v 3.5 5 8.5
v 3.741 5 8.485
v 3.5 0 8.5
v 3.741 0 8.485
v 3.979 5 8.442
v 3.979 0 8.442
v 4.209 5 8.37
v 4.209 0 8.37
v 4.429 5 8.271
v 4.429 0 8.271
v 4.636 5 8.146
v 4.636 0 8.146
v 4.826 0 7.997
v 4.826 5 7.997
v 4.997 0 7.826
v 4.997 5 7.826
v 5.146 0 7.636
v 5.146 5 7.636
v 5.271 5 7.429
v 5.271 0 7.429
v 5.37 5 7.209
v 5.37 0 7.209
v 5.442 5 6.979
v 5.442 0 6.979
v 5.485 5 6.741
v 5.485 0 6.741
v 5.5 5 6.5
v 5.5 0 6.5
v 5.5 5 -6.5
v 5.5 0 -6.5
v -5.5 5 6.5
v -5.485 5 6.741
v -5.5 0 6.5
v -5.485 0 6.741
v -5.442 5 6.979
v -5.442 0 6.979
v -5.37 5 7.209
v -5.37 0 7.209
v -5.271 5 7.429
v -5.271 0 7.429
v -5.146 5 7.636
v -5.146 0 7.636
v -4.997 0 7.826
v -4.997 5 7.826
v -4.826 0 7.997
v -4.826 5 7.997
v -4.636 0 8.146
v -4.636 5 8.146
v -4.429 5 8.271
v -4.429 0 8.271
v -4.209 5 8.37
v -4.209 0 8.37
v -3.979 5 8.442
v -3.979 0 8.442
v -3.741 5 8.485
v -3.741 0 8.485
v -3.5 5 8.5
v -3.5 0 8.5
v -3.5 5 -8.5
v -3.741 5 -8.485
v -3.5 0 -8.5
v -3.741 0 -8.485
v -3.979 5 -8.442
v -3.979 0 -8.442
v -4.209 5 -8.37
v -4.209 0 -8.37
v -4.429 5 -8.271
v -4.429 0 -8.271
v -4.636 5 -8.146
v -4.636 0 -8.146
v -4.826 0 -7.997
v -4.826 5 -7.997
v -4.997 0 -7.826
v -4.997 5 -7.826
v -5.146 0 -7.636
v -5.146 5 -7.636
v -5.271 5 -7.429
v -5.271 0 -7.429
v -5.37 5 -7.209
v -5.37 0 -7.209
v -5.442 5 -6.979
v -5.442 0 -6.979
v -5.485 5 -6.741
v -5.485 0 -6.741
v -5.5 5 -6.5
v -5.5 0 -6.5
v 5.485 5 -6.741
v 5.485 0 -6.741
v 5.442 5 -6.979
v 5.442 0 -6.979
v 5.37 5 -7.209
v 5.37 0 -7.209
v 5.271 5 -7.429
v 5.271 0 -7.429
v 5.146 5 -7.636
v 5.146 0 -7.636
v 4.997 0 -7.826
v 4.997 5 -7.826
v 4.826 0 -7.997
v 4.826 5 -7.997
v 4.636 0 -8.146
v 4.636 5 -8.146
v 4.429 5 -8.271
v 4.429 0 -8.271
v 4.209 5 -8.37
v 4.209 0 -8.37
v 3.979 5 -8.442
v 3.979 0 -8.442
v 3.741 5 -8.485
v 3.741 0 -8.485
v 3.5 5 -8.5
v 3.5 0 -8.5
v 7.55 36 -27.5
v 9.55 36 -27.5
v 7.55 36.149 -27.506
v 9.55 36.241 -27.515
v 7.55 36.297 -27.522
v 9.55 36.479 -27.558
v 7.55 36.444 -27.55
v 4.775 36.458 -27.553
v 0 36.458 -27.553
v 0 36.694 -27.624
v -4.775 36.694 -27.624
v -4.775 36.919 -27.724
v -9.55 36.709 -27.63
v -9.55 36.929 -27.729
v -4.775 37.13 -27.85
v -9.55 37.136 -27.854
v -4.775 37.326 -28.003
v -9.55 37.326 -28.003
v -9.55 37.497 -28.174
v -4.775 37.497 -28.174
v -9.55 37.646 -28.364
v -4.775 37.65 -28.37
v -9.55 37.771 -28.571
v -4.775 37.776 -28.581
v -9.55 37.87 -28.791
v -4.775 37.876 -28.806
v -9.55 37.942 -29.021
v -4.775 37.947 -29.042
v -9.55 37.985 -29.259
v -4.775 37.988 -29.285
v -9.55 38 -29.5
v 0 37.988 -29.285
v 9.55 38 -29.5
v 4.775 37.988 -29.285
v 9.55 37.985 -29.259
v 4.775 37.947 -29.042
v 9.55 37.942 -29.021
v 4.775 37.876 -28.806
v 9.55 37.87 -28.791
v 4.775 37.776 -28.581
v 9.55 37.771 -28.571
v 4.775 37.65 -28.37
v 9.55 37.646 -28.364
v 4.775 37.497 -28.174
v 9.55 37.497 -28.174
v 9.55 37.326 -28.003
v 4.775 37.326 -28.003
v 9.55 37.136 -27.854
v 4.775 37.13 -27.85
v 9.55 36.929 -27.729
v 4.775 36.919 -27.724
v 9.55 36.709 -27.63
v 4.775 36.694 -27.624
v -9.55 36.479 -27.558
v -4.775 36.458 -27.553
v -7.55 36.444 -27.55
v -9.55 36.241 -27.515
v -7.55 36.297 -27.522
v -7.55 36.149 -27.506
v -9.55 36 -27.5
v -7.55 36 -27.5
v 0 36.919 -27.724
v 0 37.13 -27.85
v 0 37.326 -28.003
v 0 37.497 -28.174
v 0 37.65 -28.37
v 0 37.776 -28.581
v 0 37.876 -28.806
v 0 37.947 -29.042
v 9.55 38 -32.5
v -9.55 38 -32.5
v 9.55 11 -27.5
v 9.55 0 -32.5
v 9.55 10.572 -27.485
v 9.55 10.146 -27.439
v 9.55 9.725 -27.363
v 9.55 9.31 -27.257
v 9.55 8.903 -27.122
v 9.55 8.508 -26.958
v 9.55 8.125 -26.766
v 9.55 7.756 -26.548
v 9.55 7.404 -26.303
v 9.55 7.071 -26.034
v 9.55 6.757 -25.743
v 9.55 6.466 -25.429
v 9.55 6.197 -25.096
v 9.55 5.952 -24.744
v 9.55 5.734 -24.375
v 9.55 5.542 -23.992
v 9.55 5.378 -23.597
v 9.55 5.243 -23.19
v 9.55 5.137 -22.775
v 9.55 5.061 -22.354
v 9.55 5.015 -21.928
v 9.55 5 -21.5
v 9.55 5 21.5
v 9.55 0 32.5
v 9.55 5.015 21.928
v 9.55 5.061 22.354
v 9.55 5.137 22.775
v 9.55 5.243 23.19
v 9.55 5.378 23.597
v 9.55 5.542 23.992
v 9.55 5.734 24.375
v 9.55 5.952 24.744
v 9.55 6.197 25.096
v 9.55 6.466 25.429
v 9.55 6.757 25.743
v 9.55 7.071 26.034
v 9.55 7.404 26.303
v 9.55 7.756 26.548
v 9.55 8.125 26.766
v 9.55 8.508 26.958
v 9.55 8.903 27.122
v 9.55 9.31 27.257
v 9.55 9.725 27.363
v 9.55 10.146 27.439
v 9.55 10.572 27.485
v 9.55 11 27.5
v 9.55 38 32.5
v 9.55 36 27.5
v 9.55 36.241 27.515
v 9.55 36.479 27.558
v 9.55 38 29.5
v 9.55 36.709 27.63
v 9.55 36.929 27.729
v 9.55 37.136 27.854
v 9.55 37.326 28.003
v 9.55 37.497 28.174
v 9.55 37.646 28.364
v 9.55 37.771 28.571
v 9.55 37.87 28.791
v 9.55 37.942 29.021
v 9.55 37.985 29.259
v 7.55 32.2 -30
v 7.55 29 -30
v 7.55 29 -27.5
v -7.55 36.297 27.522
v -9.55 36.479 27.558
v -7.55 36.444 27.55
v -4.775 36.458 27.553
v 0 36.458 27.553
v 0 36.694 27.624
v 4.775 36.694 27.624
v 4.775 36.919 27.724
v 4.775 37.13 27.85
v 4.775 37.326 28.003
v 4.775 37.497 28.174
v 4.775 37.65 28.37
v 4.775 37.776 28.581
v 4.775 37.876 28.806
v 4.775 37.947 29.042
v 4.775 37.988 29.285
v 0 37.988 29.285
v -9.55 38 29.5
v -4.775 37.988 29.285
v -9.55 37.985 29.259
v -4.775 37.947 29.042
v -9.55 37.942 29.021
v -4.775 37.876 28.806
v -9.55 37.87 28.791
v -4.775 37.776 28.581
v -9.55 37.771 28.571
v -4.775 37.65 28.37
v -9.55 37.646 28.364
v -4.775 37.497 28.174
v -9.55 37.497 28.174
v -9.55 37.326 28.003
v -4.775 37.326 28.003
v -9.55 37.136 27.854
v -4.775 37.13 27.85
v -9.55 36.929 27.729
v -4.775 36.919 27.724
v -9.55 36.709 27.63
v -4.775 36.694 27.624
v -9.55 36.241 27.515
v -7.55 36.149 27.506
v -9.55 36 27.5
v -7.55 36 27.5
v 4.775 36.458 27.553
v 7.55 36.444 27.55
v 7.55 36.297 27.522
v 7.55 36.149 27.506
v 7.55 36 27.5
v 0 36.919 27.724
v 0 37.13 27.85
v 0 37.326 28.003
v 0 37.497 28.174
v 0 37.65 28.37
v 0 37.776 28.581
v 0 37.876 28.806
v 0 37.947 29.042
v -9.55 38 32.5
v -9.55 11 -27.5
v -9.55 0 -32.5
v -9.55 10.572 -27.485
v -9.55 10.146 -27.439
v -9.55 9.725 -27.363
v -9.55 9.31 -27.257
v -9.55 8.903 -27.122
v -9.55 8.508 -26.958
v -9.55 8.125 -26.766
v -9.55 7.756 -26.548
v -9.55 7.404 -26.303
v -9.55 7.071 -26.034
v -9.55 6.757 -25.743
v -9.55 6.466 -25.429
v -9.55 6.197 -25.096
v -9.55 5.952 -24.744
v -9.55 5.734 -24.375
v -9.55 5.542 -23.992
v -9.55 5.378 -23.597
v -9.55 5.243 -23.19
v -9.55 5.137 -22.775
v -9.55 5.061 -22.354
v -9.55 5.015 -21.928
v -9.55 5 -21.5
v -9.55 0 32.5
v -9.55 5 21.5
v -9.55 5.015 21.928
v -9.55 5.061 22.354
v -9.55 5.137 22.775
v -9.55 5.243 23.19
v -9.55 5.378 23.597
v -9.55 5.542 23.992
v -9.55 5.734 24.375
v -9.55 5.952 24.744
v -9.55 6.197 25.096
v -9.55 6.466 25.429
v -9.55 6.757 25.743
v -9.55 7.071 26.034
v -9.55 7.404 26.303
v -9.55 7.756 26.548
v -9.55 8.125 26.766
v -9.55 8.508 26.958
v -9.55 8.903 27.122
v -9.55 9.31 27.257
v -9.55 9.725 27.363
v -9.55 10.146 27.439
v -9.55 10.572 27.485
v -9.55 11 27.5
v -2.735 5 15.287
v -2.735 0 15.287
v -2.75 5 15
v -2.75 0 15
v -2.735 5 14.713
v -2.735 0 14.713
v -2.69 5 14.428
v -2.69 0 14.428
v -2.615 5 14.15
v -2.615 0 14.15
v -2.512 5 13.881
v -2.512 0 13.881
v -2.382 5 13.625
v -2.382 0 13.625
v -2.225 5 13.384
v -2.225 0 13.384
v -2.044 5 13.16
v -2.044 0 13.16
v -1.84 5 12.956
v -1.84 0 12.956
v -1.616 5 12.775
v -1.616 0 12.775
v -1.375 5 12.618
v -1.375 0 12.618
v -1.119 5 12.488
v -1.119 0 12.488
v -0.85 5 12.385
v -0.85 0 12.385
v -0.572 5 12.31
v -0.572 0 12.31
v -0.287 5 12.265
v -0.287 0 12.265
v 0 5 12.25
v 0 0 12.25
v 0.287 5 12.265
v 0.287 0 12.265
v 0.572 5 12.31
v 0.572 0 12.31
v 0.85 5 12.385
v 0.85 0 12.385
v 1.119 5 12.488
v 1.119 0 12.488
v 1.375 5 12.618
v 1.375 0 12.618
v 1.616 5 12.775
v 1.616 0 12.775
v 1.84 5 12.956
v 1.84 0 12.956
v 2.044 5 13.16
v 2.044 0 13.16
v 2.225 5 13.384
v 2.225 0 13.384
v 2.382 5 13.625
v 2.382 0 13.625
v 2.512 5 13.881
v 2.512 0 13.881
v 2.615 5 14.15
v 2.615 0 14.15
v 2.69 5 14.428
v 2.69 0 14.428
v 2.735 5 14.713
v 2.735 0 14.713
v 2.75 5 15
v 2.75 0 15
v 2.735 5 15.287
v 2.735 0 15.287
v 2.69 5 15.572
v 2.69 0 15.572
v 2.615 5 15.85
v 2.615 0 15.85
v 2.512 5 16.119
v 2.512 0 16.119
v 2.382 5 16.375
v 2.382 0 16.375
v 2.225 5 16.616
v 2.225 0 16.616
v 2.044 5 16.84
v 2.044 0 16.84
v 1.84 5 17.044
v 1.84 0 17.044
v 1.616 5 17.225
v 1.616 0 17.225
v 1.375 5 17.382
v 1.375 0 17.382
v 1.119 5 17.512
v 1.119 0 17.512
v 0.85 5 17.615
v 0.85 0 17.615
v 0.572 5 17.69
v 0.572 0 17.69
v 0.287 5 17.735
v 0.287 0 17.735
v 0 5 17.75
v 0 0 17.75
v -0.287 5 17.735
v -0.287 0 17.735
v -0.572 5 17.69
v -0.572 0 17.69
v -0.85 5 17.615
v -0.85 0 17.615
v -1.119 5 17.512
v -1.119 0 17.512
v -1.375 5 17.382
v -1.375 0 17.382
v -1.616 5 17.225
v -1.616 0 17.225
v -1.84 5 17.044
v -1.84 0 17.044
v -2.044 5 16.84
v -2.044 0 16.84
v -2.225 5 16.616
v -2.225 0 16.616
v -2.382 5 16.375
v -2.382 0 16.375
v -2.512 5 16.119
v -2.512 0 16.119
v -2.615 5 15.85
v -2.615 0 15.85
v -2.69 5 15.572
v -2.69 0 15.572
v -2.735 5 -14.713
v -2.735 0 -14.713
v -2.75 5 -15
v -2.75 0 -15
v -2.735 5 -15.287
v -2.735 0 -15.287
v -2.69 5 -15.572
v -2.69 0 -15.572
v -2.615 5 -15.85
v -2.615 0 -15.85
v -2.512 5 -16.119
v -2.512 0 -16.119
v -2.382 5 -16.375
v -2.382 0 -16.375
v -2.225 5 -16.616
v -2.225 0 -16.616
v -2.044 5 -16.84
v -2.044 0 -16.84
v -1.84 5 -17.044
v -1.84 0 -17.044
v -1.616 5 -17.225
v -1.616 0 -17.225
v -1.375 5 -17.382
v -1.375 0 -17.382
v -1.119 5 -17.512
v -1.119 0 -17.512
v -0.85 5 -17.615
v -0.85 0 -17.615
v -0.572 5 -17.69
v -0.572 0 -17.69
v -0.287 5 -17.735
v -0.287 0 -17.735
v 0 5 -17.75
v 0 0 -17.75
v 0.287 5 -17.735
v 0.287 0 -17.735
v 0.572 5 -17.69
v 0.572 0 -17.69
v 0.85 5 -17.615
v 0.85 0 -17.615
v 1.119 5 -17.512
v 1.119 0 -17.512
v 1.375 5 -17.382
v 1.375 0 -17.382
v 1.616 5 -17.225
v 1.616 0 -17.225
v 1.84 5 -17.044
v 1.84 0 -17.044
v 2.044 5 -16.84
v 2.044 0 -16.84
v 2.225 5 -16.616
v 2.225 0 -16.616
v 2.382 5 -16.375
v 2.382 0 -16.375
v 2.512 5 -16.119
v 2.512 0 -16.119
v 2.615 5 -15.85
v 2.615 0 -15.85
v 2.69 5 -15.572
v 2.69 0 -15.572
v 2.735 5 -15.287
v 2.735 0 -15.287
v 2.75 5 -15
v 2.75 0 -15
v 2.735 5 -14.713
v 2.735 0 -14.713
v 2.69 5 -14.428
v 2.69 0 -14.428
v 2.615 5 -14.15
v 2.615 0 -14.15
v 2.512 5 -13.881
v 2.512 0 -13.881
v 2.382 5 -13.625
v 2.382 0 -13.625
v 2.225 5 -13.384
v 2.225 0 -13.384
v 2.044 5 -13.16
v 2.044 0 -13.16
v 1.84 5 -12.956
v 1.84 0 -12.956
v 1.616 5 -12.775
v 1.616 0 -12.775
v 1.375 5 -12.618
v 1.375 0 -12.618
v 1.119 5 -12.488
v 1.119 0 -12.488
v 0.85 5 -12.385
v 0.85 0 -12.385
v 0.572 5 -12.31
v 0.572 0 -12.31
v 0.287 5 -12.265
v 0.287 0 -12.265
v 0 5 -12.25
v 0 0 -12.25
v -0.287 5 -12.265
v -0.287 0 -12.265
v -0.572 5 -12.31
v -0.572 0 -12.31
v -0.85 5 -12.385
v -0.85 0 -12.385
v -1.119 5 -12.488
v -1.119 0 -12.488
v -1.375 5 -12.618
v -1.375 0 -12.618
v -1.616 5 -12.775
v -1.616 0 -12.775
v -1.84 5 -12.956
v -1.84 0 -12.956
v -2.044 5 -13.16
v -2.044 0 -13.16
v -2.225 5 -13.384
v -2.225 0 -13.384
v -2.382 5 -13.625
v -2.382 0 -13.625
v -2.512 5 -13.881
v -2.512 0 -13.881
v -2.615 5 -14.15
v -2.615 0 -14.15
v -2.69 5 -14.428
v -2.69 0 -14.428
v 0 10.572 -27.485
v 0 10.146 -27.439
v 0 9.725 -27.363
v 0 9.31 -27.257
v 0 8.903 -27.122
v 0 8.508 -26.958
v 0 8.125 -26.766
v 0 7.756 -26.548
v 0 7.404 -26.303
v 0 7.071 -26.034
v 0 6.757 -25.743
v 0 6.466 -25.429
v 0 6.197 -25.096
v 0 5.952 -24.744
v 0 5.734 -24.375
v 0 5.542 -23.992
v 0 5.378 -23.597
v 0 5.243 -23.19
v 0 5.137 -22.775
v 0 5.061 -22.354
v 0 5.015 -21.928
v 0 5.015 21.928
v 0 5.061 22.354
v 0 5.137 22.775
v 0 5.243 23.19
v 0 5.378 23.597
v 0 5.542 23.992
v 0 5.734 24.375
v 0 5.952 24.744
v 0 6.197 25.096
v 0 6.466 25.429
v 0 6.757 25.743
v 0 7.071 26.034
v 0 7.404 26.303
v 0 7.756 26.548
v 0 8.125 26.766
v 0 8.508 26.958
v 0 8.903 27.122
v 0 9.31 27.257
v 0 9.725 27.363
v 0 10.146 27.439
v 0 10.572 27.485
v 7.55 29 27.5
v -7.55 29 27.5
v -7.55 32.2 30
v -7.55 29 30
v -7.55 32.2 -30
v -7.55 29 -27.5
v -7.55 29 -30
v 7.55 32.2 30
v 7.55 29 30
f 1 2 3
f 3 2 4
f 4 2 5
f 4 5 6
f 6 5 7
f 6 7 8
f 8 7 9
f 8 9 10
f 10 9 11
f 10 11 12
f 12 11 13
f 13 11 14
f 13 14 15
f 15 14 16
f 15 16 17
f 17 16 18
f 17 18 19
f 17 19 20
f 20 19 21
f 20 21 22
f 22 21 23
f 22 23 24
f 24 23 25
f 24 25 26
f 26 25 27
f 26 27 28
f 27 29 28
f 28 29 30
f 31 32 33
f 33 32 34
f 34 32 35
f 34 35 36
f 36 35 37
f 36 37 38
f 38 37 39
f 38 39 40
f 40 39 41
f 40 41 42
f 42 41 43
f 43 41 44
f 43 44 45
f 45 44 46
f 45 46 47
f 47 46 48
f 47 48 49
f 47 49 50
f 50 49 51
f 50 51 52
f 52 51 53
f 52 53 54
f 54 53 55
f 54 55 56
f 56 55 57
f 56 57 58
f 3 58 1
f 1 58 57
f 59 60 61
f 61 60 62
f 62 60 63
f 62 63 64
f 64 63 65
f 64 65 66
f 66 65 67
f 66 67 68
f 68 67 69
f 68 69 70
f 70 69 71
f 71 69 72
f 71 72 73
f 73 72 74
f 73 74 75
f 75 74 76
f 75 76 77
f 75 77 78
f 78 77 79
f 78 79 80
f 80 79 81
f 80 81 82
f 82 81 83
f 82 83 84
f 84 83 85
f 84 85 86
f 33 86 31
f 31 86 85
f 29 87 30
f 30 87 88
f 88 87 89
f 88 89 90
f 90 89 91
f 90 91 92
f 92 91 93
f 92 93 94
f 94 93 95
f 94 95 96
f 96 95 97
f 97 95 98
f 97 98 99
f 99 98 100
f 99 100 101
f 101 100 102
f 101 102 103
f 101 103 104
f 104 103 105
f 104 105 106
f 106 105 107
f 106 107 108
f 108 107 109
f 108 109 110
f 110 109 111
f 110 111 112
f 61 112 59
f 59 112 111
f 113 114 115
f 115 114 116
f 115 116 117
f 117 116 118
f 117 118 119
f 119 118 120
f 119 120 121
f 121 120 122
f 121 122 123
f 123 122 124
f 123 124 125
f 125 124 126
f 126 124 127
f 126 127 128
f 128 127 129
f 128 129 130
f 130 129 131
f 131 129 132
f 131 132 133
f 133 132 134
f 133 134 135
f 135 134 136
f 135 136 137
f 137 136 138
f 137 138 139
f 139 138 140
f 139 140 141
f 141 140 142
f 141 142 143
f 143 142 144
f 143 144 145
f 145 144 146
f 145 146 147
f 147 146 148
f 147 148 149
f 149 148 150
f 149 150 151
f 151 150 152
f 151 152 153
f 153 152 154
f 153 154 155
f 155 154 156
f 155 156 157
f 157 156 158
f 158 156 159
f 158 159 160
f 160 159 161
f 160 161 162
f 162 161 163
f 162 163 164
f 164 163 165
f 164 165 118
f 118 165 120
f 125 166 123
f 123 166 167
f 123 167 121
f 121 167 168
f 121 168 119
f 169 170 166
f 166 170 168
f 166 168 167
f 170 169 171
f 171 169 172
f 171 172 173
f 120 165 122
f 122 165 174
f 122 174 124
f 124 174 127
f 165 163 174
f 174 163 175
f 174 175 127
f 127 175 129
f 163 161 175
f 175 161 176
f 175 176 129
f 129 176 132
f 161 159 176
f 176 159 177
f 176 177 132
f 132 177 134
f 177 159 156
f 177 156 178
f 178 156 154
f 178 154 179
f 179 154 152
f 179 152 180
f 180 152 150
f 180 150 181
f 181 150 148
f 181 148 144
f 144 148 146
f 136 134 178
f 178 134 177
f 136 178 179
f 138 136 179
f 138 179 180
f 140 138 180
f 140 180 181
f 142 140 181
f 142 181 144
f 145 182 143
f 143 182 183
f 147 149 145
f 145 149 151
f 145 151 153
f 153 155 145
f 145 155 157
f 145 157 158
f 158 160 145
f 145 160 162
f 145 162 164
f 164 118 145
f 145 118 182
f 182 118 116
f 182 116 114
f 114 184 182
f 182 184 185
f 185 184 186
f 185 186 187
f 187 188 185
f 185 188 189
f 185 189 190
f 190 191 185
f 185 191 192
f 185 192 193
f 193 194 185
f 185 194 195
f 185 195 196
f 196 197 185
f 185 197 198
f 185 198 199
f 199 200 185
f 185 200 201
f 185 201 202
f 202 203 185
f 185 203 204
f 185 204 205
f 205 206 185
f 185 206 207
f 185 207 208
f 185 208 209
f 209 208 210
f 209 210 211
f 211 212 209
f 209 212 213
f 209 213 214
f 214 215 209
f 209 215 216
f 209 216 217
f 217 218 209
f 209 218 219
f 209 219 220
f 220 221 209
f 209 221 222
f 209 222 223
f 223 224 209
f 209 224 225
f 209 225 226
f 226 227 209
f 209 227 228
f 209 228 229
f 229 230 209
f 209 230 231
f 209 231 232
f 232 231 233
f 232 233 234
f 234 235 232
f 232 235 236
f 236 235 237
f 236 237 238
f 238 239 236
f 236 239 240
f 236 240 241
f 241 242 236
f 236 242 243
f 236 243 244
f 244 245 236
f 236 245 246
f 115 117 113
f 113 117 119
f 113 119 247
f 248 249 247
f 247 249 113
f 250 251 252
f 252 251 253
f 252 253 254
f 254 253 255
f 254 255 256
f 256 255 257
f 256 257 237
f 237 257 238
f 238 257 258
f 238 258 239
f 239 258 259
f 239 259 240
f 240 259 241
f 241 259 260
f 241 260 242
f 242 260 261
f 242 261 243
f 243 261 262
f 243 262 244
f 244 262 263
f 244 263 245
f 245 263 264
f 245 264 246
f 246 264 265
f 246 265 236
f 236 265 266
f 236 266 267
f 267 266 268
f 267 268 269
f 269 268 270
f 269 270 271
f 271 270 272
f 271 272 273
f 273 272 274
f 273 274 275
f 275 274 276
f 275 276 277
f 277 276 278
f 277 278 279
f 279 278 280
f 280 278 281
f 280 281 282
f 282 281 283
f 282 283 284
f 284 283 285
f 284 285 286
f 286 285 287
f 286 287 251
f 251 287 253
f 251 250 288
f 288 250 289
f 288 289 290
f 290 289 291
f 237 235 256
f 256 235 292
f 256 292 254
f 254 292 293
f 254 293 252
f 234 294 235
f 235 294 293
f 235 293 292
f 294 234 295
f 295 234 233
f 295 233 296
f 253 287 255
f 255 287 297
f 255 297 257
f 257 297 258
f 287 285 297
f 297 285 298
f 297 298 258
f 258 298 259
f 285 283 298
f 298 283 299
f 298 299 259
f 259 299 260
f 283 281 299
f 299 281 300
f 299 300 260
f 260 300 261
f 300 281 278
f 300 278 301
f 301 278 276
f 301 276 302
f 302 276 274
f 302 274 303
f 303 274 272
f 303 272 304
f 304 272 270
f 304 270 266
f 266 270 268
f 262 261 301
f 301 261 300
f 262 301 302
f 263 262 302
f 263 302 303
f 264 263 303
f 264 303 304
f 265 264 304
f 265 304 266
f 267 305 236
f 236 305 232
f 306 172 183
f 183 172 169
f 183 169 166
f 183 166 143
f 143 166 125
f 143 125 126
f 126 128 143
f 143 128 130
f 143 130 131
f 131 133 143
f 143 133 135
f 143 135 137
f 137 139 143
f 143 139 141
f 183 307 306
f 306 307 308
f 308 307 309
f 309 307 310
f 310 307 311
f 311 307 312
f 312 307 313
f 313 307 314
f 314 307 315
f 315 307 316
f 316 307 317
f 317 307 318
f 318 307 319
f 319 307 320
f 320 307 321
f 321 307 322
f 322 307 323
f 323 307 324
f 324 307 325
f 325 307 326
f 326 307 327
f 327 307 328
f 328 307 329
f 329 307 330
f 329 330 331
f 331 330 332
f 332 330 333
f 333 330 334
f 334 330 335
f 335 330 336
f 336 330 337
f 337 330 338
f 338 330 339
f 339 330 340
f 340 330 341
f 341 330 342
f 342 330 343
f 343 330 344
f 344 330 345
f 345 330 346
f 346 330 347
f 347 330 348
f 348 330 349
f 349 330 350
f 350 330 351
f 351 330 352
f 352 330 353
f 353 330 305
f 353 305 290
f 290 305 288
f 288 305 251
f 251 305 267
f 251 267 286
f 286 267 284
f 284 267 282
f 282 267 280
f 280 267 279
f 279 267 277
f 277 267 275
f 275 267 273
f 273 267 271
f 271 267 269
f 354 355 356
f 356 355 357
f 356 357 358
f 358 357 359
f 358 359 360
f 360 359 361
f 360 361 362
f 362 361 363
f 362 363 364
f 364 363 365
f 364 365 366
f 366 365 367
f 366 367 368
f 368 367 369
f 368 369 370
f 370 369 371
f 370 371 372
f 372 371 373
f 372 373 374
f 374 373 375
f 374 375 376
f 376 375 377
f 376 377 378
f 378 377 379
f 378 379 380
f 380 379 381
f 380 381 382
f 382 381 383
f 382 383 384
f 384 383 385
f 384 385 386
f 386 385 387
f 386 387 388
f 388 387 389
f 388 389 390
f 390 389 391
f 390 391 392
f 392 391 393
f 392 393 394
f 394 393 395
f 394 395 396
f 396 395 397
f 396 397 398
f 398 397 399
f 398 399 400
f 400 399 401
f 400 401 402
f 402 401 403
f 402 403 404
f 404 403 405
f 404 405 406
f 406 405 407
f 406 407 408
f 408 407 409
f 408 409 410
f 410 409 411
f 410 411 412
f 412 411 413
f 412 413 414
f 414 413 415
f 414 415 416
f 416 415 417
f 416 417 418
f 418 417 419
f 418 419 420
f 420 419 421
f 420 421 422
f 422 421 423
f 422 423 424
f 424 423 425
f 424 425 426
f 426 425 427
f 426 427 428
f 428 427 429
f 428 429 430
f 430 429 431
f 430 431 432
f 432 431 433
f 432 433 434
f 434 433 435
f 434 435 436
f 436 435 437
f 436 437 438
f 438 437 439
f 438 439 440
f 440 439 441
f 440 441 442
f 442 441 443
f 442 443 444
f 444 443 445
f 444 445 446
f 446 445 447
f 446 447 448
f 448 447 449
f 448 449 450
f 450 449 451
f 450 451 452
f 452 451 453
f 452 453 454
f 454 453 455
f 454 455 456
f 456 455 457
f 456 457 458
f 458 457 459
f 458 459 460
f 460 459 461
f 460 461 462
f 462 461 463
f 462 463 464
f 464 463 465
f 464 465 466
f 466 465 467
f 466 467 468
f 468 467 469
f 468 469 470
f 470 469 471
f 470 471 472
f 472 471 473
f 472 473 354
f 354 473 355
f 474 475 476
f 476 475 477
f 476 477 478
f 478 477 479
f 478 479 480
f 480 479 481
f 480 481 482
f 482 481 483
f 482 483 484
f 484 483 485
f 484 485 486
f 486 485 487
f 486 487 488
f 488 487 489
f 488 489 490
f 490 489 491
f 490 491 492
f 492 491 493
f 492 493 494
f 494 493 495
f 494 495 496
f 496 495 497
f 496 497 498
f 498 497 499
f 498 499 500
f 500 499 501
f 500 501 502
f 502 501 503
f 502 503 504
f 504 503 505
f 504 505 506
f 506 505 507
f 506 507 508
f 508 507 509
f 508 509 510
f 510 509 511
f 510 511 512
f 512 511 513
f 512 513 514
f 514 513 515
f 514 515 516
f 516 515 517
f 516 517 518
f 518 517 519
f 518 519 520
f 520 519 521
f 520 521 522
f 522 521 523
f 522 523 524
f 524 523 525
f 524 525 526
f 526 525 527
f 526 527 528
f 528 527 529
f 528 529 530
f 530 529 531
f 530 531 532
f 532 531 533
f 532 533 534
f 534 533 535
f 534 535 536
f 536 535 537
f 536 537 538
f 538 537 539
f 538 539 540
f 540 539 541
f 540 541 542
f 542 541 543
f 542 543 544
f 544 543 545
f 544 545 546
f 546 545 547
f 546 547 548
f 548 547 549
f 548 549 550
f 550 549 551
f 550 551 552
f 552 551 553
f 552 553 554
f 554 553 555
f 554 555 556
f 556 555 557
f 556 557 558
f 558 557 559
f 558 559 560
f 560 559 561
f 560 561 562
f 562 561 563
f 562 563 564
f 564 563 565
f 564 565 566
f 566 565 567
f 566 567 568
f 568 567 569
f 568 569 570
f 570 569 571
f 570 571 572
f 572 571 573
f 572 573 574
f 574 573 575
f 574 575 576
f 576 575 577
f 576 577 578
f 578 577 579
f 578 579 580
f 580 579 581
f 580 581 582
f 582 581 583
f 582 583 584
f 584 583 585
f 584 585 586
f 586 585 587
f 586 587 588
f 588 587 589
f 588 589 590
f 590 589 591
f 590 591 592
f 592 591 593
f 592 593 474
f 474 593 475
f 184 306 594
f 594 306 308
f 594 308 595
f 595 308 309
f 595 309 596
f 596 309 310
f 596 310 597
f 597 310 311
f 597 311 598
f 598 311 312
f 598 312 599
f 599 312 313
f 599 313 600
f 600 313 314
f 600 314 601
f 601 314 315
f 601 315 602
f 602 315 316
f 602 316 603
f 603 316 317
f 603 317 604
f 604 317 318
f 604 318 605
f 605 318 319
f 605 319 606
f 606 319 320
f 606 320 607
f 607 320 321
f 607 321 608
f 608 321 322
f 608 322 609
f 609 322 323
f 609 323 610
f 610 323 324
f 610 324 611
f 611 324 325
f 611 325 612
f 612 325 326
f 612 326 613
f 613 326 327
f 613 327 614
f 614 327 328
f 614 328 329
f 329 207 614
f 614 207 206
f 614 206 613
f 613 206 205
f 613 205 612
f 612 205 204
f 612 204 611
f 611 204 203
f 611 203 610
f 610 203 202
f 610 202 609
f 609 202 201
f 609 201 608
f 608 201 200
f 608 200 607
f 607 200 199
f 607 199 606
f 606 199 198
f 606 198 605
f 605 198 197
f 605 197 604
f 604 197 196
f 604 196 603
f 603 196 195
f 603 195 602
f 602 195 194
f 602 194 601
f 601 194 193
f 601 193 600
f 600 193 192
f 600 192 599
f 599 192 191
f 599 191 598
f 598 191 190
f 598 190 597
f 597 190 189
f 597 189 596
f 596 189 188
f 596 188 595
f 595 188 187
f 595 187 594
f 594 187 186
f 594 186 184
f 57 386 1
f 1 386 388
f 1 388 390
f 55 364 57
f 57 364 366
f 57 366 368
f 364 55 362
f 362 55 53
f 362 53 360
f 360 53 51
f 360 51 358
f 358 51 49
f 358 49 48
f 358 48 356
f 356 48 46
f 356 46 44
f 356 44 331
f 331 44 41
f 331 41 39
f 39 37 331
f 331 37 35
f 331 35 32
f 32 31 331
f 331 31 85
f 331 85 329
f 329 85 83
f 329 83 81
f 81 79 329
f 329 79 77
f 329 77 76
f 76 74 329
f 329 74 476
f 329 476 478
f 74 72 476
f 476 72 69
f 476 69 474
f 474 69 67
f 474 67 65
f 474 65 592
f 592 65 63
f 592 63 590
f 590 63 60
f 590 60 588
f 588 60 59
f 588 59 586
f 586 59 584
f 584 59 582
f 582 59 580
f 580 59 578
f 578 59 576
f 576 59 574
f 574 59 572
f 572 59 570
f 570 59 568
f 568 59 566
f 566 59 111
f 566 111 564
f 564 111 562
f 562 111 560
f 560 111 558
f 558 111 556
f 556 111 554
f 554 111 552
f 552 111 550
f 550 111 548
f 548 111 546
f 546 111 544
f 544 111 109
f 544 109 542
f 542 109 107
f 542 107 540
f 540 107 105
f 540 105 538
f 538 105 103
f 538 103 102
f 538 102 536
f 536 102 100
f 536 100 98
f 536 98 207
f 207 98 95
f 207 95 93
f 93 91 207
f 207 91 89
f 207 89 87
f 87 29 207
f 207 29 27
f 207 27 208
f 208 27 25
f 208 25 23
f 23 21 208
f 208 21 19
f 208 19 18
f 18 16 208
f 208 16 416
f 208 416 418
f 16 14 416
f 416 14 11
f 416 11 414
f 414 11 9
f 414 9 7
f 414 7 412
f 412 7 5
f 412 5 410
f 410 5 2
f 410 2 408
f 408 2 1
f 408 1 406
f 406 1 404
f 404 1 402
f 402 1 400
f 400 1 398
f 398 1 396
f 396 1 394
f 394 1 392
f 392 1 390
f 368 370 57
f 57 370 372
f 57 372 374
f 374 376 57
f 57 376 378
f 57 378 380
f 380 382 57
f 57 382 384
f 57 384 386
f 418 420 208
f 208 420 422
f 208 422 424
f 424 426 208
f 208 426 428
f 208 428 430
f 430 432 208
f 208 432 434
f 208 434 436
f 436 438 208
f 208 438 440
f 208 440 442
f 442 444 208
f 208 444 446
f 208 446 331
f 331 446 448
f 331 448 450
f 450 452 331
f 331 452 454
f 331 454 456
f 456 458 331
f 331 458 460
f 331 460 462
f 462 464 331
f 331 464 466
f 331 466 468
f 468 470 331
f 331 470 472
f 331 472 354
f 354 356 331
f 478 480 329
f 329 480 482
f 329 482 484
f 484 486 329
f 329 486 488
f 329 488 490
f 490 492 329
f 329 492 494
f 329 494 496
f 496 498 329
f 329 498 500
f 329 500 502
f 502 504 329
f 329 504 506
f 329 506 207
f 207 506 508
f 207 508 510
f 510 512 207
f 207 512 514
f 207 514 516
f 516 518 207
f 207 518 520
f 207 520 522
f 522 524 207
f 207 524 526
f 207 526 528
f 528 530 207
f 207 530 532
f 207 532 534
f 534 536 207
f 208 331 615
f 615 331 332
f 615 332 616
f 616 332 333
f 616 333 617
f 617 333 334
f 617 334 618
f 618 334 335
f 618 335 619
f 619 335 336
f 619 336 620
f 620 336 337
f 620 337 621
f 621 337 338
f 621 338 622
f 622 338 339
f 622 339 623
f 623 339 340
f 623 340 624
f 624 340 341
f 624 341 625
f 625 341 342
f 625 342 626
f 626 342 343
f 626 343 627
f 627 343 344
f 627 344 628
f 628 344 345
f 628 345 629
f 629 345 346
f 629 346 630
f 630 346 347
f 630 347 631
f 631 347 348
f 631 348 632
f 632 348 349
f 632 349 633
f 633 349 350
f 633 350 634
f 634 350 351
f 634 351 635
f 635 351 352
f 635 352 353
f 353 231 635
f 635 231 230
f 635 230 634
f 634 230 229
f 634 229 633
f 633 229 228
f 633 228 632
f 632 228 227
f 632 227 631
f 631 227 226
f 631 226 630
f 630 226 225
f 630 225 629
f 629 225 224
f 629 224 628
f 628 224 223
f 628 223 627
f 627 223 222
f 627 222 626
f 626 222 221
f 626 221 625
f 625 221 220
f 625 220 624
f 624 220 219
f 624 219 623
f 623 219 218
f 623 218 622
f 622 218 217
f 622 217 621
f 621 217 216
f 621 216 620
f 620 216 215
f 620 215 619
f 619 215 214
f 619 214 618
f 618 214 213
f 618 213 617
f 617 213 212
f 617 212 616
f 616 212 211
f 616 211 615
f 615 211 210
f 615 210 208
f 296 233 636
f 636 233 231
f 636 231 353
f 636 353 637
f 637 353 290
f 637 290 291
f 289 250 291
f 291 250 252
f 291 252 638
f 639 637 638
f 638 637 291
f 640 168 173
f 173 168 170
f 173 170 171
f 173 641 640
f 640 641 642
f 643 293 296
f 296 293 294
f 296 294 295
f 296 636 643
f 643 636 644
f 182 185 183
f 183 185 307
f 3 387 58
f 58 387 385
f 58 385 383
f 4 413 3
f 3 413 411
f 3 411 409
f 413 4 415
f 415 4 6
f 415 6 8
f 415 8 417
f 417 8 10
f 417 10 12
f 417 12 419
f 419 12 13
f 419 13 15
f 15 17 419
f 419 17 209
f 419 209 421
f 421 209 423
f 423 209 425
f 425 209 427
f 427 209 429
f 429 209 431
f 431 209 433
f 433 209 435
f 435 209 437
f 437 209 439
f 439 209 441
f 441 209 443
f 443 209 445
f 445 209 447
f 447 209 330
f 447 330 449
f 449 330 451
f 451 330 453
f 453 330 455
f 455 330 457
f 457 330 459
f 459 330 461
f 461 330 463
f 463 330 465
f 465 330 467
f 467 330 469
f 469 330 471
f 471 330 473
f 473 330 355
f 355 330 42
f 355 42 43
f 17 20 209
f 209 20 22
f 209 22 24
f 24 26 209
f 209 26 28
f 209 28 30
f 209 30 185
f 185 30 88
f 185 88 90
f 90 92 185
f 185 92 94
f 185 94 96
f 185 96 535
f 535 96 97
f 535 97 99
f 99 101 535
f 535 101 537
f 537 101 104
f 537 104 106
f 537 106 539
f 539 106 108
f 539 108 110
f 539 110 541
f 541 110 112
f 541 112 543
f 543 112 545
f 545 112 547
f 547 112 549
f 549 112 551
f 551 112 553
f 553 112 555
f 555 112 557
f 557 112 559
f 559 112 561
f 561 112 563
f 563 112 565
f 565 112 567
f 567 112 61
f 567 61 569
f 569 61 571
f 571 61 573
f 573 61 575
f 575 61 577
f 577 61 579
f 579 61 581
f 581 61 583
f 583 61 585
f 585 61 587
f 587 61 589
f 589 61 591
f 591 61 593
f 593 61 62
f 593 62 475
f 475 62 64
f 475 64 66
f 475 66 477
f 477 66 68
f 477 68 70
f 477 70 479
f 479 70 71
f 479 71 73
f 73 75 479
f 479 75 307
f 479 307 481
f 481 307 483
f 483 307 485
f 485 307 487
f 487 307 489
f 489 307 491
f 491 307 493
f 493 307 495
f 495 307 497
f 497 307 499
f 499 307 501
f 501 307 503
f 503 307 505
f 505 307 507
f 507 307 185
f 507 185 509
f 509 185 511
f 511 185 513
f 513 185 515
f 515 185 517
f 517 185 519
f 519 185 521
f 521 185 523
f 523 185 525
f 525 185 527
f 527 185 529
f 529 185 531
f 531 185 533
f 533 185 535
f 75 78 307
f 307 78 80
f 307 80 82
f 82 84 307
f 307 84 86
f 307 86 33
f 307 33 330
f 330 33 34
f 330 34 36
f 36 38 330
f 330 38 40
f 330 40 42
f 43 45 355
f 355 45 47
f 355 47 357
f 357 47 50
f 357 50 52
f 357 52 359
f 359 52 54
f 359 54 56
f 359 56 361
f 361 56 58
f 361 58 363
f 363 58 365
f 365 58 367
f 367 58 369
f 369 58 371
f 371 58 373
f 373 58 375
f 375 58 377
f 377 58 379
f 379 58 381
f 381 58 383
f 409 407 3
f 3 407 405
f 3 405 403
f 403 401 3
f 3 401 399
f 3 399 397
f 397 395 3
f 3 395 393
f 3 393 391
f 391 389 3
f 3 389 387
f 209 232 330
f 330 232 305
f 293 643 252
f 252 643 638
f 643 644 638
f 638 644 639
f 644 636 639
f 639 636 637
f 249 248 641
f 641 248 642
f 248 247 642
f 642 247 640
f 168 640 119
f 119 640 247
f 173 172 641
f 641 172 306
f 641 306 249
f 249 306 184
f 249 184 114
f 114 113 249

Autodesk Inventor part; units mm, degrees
ref_plane "YZ Plane" through (0, 0, 0) normal (1, 0, 0) x (0, 1, 0)
ref_plane "XZ Plane" through (0, 0, 0) normal (0, 1, 0) x (-1, 0, 0)
ref_plane "XY Plane" through (0, 0, 0) normal (0, 0, 1) x (1, 0, 0)
sketch "Sketch1" plane through (0, 0, 0) normal (1, 0, 0) x (0, 1, 0)
  line L0 (38, 32.5) -> (0, 32.5)
  line L1 (0, 32.5) -> (0, -32.5)
  line L2 (0, -32.5) -> (38, -32.5)
  line L3 (0, 0) -> (16.8405, 0)
  line L4 (38, 32.5) -> (38, 27.5)
  line L5 (29, 27.5) -> (5, 27.5)
  line L6 (5, 27.5) -> (5, -27.5)
  line L7 (5, -27.5) -> (29, -27.5)
  line L8 (5.264, 15) -> (-3.604, 15) construction
  line L9 (5.264, -15) -> (-3.604, -15) construction
  line L10 (38, 27.5) -> (36.5301, 27.5)
  line L11 (29, 30) -> (29, 27.5)
  line L12 (36.5301, 27.5) -> (32.2, 30)
  line L13 (32.2, 30) -> (29, 30)
  line L14 (38, -32.5) -> (38, -27.5)
  line L15 (38, -27.5) -> (36.5301, -27.5)
  line L16 (29, -30) -> (29, -27.5)
  line L17 (36.5301, -27.5) -> (32.2, -30)
  line L18 (32.2, -30) -> (29, -30)
  dimension "d0" = 5
  dimension "d1" = 30
  dimension "d2" = 65
  dimension "d3" = 38
  dimension "d5" = 3.2
  dimension "d6" = 24
  dimension "d7" = 2.5
  dimension "d8" = 30
  dimension "d9" = 5
  dimension "d10" = 5
  dimension "d30" = 60
extrude "Extrusion1" add sketch "Sketch1" along normal mid plane 15.1
sketch "Sketch2" plane through (7.55, 0, 0) normal (1, 0, 0) x (0, 0, -1)
  line L0 (32.5, 38) -> (27.5, 38) projected
  line L1 (27.5, 38) -> (27.5, 36.5301) projected
  line L2 (27.5, 36.5301) -> (30, 32.2) projected
  line L3 (30, 32.2) -> (30, 29) projected
  line L4 (30, 29) -> (27.5, 29) projected
  line L5 (27.5, 29) -> (27.5, 5) projected
  line L6 (27.5, 5) -> (-27.5, 5) projected
  line L7 (-27.5, 5) -> (-27.5, 29) projected
  line L8 (-27.5, 29) -> (-30, 29) projected
  line L9 (-30, 29) -> (-30, 32.2) projected
  line L10 (-30, 32.2) -> (-27.5, 36.5301) projected
  line L11 (-27.5, 36.5301) -> (-27.5, 38) projected
  line L12 (-27.5, 38) -> (-32.5, 38) projected
  line L13 (-32.5, 38) -> (-32.5, 0) projected
  line L14 (-32.5, 0) -> (32.5, 0) projected
  line L15 (32.5, 0) -> (32.5, 38) projected
  line L16 (-30, 32.2) -> (-27.5, 36.5301) projected
  line L17 (-27.5, 5) -> (-27.5, 29) projected
  line L18 (-27.5, 36.5301) -> (-27.5, 29)
  line L19 (27.5, 38) -> (27.5, 36.5301) projected
  line L20 (27.5, 29) -> (27.5, 5) projected
  line L21 (27.5, 36.5301) -> (27.5, 29)
  point P0 (0, 0)
extrude "Extrusion2" add sketch "Sketch2" along normal blind 2
mirror "Mirror1" about plane through (0, 0, 0) normal (1, 0, 0) of "Extrusion2"
fillet "Fillet1" radius 6 2 edges at (0, 5, 27.5) (0, 5, -27.5)
sketch "Sketch3" plane through (9.55, 0, -32.5) normal (0, -1, 0) x (1, 0, 0)
  line L0 (-9.55, 32.5) -> (28.6439, 32.5)
  point P0 (-9.55, 47.5)
  point P1 (-9.55, 17.5)
  dimension "d16" = 30
hole "Hole1" at (0, 0, 15) at (0, 0, -15) direction (0, 1, 0) diameter 5.5 end through all
fillet "Fillet2" radius 2 2 edges at (0, 38, 27.5) (0, 38, -27.5)
sketch "Sketch4" plane through (-9.55, 5, -21.5) normal (0, 1, 0) x (1, 0, 0)
  line L0 (15.05, -13) -> (4.05, -13)
  line L1 (4.05, -13) -> (4.05, -30)
  line L2 (4.05, -30) -> (15.05, -30)
  line L3 (15.05, -30) -> (15.05, -13)
  point P0 (9.55, -21.5)
  point P1 (15.05, -21.5)
  point P2 (9.55, -13)
  dimension "d25" = 17
  dimension "d26" = 11
extrude "Extrusion3" cut sketch "Sketch4" against normal through all
fillet "Fillet3" radius 2 4 edges at (5.5, 2.5, -8.5) (-5.5, 2.5, -8.5) (-5.5, 2.5, 8.5) (5.5, 2.5, 8.5)
properties part number "Base_Lower_v3"
